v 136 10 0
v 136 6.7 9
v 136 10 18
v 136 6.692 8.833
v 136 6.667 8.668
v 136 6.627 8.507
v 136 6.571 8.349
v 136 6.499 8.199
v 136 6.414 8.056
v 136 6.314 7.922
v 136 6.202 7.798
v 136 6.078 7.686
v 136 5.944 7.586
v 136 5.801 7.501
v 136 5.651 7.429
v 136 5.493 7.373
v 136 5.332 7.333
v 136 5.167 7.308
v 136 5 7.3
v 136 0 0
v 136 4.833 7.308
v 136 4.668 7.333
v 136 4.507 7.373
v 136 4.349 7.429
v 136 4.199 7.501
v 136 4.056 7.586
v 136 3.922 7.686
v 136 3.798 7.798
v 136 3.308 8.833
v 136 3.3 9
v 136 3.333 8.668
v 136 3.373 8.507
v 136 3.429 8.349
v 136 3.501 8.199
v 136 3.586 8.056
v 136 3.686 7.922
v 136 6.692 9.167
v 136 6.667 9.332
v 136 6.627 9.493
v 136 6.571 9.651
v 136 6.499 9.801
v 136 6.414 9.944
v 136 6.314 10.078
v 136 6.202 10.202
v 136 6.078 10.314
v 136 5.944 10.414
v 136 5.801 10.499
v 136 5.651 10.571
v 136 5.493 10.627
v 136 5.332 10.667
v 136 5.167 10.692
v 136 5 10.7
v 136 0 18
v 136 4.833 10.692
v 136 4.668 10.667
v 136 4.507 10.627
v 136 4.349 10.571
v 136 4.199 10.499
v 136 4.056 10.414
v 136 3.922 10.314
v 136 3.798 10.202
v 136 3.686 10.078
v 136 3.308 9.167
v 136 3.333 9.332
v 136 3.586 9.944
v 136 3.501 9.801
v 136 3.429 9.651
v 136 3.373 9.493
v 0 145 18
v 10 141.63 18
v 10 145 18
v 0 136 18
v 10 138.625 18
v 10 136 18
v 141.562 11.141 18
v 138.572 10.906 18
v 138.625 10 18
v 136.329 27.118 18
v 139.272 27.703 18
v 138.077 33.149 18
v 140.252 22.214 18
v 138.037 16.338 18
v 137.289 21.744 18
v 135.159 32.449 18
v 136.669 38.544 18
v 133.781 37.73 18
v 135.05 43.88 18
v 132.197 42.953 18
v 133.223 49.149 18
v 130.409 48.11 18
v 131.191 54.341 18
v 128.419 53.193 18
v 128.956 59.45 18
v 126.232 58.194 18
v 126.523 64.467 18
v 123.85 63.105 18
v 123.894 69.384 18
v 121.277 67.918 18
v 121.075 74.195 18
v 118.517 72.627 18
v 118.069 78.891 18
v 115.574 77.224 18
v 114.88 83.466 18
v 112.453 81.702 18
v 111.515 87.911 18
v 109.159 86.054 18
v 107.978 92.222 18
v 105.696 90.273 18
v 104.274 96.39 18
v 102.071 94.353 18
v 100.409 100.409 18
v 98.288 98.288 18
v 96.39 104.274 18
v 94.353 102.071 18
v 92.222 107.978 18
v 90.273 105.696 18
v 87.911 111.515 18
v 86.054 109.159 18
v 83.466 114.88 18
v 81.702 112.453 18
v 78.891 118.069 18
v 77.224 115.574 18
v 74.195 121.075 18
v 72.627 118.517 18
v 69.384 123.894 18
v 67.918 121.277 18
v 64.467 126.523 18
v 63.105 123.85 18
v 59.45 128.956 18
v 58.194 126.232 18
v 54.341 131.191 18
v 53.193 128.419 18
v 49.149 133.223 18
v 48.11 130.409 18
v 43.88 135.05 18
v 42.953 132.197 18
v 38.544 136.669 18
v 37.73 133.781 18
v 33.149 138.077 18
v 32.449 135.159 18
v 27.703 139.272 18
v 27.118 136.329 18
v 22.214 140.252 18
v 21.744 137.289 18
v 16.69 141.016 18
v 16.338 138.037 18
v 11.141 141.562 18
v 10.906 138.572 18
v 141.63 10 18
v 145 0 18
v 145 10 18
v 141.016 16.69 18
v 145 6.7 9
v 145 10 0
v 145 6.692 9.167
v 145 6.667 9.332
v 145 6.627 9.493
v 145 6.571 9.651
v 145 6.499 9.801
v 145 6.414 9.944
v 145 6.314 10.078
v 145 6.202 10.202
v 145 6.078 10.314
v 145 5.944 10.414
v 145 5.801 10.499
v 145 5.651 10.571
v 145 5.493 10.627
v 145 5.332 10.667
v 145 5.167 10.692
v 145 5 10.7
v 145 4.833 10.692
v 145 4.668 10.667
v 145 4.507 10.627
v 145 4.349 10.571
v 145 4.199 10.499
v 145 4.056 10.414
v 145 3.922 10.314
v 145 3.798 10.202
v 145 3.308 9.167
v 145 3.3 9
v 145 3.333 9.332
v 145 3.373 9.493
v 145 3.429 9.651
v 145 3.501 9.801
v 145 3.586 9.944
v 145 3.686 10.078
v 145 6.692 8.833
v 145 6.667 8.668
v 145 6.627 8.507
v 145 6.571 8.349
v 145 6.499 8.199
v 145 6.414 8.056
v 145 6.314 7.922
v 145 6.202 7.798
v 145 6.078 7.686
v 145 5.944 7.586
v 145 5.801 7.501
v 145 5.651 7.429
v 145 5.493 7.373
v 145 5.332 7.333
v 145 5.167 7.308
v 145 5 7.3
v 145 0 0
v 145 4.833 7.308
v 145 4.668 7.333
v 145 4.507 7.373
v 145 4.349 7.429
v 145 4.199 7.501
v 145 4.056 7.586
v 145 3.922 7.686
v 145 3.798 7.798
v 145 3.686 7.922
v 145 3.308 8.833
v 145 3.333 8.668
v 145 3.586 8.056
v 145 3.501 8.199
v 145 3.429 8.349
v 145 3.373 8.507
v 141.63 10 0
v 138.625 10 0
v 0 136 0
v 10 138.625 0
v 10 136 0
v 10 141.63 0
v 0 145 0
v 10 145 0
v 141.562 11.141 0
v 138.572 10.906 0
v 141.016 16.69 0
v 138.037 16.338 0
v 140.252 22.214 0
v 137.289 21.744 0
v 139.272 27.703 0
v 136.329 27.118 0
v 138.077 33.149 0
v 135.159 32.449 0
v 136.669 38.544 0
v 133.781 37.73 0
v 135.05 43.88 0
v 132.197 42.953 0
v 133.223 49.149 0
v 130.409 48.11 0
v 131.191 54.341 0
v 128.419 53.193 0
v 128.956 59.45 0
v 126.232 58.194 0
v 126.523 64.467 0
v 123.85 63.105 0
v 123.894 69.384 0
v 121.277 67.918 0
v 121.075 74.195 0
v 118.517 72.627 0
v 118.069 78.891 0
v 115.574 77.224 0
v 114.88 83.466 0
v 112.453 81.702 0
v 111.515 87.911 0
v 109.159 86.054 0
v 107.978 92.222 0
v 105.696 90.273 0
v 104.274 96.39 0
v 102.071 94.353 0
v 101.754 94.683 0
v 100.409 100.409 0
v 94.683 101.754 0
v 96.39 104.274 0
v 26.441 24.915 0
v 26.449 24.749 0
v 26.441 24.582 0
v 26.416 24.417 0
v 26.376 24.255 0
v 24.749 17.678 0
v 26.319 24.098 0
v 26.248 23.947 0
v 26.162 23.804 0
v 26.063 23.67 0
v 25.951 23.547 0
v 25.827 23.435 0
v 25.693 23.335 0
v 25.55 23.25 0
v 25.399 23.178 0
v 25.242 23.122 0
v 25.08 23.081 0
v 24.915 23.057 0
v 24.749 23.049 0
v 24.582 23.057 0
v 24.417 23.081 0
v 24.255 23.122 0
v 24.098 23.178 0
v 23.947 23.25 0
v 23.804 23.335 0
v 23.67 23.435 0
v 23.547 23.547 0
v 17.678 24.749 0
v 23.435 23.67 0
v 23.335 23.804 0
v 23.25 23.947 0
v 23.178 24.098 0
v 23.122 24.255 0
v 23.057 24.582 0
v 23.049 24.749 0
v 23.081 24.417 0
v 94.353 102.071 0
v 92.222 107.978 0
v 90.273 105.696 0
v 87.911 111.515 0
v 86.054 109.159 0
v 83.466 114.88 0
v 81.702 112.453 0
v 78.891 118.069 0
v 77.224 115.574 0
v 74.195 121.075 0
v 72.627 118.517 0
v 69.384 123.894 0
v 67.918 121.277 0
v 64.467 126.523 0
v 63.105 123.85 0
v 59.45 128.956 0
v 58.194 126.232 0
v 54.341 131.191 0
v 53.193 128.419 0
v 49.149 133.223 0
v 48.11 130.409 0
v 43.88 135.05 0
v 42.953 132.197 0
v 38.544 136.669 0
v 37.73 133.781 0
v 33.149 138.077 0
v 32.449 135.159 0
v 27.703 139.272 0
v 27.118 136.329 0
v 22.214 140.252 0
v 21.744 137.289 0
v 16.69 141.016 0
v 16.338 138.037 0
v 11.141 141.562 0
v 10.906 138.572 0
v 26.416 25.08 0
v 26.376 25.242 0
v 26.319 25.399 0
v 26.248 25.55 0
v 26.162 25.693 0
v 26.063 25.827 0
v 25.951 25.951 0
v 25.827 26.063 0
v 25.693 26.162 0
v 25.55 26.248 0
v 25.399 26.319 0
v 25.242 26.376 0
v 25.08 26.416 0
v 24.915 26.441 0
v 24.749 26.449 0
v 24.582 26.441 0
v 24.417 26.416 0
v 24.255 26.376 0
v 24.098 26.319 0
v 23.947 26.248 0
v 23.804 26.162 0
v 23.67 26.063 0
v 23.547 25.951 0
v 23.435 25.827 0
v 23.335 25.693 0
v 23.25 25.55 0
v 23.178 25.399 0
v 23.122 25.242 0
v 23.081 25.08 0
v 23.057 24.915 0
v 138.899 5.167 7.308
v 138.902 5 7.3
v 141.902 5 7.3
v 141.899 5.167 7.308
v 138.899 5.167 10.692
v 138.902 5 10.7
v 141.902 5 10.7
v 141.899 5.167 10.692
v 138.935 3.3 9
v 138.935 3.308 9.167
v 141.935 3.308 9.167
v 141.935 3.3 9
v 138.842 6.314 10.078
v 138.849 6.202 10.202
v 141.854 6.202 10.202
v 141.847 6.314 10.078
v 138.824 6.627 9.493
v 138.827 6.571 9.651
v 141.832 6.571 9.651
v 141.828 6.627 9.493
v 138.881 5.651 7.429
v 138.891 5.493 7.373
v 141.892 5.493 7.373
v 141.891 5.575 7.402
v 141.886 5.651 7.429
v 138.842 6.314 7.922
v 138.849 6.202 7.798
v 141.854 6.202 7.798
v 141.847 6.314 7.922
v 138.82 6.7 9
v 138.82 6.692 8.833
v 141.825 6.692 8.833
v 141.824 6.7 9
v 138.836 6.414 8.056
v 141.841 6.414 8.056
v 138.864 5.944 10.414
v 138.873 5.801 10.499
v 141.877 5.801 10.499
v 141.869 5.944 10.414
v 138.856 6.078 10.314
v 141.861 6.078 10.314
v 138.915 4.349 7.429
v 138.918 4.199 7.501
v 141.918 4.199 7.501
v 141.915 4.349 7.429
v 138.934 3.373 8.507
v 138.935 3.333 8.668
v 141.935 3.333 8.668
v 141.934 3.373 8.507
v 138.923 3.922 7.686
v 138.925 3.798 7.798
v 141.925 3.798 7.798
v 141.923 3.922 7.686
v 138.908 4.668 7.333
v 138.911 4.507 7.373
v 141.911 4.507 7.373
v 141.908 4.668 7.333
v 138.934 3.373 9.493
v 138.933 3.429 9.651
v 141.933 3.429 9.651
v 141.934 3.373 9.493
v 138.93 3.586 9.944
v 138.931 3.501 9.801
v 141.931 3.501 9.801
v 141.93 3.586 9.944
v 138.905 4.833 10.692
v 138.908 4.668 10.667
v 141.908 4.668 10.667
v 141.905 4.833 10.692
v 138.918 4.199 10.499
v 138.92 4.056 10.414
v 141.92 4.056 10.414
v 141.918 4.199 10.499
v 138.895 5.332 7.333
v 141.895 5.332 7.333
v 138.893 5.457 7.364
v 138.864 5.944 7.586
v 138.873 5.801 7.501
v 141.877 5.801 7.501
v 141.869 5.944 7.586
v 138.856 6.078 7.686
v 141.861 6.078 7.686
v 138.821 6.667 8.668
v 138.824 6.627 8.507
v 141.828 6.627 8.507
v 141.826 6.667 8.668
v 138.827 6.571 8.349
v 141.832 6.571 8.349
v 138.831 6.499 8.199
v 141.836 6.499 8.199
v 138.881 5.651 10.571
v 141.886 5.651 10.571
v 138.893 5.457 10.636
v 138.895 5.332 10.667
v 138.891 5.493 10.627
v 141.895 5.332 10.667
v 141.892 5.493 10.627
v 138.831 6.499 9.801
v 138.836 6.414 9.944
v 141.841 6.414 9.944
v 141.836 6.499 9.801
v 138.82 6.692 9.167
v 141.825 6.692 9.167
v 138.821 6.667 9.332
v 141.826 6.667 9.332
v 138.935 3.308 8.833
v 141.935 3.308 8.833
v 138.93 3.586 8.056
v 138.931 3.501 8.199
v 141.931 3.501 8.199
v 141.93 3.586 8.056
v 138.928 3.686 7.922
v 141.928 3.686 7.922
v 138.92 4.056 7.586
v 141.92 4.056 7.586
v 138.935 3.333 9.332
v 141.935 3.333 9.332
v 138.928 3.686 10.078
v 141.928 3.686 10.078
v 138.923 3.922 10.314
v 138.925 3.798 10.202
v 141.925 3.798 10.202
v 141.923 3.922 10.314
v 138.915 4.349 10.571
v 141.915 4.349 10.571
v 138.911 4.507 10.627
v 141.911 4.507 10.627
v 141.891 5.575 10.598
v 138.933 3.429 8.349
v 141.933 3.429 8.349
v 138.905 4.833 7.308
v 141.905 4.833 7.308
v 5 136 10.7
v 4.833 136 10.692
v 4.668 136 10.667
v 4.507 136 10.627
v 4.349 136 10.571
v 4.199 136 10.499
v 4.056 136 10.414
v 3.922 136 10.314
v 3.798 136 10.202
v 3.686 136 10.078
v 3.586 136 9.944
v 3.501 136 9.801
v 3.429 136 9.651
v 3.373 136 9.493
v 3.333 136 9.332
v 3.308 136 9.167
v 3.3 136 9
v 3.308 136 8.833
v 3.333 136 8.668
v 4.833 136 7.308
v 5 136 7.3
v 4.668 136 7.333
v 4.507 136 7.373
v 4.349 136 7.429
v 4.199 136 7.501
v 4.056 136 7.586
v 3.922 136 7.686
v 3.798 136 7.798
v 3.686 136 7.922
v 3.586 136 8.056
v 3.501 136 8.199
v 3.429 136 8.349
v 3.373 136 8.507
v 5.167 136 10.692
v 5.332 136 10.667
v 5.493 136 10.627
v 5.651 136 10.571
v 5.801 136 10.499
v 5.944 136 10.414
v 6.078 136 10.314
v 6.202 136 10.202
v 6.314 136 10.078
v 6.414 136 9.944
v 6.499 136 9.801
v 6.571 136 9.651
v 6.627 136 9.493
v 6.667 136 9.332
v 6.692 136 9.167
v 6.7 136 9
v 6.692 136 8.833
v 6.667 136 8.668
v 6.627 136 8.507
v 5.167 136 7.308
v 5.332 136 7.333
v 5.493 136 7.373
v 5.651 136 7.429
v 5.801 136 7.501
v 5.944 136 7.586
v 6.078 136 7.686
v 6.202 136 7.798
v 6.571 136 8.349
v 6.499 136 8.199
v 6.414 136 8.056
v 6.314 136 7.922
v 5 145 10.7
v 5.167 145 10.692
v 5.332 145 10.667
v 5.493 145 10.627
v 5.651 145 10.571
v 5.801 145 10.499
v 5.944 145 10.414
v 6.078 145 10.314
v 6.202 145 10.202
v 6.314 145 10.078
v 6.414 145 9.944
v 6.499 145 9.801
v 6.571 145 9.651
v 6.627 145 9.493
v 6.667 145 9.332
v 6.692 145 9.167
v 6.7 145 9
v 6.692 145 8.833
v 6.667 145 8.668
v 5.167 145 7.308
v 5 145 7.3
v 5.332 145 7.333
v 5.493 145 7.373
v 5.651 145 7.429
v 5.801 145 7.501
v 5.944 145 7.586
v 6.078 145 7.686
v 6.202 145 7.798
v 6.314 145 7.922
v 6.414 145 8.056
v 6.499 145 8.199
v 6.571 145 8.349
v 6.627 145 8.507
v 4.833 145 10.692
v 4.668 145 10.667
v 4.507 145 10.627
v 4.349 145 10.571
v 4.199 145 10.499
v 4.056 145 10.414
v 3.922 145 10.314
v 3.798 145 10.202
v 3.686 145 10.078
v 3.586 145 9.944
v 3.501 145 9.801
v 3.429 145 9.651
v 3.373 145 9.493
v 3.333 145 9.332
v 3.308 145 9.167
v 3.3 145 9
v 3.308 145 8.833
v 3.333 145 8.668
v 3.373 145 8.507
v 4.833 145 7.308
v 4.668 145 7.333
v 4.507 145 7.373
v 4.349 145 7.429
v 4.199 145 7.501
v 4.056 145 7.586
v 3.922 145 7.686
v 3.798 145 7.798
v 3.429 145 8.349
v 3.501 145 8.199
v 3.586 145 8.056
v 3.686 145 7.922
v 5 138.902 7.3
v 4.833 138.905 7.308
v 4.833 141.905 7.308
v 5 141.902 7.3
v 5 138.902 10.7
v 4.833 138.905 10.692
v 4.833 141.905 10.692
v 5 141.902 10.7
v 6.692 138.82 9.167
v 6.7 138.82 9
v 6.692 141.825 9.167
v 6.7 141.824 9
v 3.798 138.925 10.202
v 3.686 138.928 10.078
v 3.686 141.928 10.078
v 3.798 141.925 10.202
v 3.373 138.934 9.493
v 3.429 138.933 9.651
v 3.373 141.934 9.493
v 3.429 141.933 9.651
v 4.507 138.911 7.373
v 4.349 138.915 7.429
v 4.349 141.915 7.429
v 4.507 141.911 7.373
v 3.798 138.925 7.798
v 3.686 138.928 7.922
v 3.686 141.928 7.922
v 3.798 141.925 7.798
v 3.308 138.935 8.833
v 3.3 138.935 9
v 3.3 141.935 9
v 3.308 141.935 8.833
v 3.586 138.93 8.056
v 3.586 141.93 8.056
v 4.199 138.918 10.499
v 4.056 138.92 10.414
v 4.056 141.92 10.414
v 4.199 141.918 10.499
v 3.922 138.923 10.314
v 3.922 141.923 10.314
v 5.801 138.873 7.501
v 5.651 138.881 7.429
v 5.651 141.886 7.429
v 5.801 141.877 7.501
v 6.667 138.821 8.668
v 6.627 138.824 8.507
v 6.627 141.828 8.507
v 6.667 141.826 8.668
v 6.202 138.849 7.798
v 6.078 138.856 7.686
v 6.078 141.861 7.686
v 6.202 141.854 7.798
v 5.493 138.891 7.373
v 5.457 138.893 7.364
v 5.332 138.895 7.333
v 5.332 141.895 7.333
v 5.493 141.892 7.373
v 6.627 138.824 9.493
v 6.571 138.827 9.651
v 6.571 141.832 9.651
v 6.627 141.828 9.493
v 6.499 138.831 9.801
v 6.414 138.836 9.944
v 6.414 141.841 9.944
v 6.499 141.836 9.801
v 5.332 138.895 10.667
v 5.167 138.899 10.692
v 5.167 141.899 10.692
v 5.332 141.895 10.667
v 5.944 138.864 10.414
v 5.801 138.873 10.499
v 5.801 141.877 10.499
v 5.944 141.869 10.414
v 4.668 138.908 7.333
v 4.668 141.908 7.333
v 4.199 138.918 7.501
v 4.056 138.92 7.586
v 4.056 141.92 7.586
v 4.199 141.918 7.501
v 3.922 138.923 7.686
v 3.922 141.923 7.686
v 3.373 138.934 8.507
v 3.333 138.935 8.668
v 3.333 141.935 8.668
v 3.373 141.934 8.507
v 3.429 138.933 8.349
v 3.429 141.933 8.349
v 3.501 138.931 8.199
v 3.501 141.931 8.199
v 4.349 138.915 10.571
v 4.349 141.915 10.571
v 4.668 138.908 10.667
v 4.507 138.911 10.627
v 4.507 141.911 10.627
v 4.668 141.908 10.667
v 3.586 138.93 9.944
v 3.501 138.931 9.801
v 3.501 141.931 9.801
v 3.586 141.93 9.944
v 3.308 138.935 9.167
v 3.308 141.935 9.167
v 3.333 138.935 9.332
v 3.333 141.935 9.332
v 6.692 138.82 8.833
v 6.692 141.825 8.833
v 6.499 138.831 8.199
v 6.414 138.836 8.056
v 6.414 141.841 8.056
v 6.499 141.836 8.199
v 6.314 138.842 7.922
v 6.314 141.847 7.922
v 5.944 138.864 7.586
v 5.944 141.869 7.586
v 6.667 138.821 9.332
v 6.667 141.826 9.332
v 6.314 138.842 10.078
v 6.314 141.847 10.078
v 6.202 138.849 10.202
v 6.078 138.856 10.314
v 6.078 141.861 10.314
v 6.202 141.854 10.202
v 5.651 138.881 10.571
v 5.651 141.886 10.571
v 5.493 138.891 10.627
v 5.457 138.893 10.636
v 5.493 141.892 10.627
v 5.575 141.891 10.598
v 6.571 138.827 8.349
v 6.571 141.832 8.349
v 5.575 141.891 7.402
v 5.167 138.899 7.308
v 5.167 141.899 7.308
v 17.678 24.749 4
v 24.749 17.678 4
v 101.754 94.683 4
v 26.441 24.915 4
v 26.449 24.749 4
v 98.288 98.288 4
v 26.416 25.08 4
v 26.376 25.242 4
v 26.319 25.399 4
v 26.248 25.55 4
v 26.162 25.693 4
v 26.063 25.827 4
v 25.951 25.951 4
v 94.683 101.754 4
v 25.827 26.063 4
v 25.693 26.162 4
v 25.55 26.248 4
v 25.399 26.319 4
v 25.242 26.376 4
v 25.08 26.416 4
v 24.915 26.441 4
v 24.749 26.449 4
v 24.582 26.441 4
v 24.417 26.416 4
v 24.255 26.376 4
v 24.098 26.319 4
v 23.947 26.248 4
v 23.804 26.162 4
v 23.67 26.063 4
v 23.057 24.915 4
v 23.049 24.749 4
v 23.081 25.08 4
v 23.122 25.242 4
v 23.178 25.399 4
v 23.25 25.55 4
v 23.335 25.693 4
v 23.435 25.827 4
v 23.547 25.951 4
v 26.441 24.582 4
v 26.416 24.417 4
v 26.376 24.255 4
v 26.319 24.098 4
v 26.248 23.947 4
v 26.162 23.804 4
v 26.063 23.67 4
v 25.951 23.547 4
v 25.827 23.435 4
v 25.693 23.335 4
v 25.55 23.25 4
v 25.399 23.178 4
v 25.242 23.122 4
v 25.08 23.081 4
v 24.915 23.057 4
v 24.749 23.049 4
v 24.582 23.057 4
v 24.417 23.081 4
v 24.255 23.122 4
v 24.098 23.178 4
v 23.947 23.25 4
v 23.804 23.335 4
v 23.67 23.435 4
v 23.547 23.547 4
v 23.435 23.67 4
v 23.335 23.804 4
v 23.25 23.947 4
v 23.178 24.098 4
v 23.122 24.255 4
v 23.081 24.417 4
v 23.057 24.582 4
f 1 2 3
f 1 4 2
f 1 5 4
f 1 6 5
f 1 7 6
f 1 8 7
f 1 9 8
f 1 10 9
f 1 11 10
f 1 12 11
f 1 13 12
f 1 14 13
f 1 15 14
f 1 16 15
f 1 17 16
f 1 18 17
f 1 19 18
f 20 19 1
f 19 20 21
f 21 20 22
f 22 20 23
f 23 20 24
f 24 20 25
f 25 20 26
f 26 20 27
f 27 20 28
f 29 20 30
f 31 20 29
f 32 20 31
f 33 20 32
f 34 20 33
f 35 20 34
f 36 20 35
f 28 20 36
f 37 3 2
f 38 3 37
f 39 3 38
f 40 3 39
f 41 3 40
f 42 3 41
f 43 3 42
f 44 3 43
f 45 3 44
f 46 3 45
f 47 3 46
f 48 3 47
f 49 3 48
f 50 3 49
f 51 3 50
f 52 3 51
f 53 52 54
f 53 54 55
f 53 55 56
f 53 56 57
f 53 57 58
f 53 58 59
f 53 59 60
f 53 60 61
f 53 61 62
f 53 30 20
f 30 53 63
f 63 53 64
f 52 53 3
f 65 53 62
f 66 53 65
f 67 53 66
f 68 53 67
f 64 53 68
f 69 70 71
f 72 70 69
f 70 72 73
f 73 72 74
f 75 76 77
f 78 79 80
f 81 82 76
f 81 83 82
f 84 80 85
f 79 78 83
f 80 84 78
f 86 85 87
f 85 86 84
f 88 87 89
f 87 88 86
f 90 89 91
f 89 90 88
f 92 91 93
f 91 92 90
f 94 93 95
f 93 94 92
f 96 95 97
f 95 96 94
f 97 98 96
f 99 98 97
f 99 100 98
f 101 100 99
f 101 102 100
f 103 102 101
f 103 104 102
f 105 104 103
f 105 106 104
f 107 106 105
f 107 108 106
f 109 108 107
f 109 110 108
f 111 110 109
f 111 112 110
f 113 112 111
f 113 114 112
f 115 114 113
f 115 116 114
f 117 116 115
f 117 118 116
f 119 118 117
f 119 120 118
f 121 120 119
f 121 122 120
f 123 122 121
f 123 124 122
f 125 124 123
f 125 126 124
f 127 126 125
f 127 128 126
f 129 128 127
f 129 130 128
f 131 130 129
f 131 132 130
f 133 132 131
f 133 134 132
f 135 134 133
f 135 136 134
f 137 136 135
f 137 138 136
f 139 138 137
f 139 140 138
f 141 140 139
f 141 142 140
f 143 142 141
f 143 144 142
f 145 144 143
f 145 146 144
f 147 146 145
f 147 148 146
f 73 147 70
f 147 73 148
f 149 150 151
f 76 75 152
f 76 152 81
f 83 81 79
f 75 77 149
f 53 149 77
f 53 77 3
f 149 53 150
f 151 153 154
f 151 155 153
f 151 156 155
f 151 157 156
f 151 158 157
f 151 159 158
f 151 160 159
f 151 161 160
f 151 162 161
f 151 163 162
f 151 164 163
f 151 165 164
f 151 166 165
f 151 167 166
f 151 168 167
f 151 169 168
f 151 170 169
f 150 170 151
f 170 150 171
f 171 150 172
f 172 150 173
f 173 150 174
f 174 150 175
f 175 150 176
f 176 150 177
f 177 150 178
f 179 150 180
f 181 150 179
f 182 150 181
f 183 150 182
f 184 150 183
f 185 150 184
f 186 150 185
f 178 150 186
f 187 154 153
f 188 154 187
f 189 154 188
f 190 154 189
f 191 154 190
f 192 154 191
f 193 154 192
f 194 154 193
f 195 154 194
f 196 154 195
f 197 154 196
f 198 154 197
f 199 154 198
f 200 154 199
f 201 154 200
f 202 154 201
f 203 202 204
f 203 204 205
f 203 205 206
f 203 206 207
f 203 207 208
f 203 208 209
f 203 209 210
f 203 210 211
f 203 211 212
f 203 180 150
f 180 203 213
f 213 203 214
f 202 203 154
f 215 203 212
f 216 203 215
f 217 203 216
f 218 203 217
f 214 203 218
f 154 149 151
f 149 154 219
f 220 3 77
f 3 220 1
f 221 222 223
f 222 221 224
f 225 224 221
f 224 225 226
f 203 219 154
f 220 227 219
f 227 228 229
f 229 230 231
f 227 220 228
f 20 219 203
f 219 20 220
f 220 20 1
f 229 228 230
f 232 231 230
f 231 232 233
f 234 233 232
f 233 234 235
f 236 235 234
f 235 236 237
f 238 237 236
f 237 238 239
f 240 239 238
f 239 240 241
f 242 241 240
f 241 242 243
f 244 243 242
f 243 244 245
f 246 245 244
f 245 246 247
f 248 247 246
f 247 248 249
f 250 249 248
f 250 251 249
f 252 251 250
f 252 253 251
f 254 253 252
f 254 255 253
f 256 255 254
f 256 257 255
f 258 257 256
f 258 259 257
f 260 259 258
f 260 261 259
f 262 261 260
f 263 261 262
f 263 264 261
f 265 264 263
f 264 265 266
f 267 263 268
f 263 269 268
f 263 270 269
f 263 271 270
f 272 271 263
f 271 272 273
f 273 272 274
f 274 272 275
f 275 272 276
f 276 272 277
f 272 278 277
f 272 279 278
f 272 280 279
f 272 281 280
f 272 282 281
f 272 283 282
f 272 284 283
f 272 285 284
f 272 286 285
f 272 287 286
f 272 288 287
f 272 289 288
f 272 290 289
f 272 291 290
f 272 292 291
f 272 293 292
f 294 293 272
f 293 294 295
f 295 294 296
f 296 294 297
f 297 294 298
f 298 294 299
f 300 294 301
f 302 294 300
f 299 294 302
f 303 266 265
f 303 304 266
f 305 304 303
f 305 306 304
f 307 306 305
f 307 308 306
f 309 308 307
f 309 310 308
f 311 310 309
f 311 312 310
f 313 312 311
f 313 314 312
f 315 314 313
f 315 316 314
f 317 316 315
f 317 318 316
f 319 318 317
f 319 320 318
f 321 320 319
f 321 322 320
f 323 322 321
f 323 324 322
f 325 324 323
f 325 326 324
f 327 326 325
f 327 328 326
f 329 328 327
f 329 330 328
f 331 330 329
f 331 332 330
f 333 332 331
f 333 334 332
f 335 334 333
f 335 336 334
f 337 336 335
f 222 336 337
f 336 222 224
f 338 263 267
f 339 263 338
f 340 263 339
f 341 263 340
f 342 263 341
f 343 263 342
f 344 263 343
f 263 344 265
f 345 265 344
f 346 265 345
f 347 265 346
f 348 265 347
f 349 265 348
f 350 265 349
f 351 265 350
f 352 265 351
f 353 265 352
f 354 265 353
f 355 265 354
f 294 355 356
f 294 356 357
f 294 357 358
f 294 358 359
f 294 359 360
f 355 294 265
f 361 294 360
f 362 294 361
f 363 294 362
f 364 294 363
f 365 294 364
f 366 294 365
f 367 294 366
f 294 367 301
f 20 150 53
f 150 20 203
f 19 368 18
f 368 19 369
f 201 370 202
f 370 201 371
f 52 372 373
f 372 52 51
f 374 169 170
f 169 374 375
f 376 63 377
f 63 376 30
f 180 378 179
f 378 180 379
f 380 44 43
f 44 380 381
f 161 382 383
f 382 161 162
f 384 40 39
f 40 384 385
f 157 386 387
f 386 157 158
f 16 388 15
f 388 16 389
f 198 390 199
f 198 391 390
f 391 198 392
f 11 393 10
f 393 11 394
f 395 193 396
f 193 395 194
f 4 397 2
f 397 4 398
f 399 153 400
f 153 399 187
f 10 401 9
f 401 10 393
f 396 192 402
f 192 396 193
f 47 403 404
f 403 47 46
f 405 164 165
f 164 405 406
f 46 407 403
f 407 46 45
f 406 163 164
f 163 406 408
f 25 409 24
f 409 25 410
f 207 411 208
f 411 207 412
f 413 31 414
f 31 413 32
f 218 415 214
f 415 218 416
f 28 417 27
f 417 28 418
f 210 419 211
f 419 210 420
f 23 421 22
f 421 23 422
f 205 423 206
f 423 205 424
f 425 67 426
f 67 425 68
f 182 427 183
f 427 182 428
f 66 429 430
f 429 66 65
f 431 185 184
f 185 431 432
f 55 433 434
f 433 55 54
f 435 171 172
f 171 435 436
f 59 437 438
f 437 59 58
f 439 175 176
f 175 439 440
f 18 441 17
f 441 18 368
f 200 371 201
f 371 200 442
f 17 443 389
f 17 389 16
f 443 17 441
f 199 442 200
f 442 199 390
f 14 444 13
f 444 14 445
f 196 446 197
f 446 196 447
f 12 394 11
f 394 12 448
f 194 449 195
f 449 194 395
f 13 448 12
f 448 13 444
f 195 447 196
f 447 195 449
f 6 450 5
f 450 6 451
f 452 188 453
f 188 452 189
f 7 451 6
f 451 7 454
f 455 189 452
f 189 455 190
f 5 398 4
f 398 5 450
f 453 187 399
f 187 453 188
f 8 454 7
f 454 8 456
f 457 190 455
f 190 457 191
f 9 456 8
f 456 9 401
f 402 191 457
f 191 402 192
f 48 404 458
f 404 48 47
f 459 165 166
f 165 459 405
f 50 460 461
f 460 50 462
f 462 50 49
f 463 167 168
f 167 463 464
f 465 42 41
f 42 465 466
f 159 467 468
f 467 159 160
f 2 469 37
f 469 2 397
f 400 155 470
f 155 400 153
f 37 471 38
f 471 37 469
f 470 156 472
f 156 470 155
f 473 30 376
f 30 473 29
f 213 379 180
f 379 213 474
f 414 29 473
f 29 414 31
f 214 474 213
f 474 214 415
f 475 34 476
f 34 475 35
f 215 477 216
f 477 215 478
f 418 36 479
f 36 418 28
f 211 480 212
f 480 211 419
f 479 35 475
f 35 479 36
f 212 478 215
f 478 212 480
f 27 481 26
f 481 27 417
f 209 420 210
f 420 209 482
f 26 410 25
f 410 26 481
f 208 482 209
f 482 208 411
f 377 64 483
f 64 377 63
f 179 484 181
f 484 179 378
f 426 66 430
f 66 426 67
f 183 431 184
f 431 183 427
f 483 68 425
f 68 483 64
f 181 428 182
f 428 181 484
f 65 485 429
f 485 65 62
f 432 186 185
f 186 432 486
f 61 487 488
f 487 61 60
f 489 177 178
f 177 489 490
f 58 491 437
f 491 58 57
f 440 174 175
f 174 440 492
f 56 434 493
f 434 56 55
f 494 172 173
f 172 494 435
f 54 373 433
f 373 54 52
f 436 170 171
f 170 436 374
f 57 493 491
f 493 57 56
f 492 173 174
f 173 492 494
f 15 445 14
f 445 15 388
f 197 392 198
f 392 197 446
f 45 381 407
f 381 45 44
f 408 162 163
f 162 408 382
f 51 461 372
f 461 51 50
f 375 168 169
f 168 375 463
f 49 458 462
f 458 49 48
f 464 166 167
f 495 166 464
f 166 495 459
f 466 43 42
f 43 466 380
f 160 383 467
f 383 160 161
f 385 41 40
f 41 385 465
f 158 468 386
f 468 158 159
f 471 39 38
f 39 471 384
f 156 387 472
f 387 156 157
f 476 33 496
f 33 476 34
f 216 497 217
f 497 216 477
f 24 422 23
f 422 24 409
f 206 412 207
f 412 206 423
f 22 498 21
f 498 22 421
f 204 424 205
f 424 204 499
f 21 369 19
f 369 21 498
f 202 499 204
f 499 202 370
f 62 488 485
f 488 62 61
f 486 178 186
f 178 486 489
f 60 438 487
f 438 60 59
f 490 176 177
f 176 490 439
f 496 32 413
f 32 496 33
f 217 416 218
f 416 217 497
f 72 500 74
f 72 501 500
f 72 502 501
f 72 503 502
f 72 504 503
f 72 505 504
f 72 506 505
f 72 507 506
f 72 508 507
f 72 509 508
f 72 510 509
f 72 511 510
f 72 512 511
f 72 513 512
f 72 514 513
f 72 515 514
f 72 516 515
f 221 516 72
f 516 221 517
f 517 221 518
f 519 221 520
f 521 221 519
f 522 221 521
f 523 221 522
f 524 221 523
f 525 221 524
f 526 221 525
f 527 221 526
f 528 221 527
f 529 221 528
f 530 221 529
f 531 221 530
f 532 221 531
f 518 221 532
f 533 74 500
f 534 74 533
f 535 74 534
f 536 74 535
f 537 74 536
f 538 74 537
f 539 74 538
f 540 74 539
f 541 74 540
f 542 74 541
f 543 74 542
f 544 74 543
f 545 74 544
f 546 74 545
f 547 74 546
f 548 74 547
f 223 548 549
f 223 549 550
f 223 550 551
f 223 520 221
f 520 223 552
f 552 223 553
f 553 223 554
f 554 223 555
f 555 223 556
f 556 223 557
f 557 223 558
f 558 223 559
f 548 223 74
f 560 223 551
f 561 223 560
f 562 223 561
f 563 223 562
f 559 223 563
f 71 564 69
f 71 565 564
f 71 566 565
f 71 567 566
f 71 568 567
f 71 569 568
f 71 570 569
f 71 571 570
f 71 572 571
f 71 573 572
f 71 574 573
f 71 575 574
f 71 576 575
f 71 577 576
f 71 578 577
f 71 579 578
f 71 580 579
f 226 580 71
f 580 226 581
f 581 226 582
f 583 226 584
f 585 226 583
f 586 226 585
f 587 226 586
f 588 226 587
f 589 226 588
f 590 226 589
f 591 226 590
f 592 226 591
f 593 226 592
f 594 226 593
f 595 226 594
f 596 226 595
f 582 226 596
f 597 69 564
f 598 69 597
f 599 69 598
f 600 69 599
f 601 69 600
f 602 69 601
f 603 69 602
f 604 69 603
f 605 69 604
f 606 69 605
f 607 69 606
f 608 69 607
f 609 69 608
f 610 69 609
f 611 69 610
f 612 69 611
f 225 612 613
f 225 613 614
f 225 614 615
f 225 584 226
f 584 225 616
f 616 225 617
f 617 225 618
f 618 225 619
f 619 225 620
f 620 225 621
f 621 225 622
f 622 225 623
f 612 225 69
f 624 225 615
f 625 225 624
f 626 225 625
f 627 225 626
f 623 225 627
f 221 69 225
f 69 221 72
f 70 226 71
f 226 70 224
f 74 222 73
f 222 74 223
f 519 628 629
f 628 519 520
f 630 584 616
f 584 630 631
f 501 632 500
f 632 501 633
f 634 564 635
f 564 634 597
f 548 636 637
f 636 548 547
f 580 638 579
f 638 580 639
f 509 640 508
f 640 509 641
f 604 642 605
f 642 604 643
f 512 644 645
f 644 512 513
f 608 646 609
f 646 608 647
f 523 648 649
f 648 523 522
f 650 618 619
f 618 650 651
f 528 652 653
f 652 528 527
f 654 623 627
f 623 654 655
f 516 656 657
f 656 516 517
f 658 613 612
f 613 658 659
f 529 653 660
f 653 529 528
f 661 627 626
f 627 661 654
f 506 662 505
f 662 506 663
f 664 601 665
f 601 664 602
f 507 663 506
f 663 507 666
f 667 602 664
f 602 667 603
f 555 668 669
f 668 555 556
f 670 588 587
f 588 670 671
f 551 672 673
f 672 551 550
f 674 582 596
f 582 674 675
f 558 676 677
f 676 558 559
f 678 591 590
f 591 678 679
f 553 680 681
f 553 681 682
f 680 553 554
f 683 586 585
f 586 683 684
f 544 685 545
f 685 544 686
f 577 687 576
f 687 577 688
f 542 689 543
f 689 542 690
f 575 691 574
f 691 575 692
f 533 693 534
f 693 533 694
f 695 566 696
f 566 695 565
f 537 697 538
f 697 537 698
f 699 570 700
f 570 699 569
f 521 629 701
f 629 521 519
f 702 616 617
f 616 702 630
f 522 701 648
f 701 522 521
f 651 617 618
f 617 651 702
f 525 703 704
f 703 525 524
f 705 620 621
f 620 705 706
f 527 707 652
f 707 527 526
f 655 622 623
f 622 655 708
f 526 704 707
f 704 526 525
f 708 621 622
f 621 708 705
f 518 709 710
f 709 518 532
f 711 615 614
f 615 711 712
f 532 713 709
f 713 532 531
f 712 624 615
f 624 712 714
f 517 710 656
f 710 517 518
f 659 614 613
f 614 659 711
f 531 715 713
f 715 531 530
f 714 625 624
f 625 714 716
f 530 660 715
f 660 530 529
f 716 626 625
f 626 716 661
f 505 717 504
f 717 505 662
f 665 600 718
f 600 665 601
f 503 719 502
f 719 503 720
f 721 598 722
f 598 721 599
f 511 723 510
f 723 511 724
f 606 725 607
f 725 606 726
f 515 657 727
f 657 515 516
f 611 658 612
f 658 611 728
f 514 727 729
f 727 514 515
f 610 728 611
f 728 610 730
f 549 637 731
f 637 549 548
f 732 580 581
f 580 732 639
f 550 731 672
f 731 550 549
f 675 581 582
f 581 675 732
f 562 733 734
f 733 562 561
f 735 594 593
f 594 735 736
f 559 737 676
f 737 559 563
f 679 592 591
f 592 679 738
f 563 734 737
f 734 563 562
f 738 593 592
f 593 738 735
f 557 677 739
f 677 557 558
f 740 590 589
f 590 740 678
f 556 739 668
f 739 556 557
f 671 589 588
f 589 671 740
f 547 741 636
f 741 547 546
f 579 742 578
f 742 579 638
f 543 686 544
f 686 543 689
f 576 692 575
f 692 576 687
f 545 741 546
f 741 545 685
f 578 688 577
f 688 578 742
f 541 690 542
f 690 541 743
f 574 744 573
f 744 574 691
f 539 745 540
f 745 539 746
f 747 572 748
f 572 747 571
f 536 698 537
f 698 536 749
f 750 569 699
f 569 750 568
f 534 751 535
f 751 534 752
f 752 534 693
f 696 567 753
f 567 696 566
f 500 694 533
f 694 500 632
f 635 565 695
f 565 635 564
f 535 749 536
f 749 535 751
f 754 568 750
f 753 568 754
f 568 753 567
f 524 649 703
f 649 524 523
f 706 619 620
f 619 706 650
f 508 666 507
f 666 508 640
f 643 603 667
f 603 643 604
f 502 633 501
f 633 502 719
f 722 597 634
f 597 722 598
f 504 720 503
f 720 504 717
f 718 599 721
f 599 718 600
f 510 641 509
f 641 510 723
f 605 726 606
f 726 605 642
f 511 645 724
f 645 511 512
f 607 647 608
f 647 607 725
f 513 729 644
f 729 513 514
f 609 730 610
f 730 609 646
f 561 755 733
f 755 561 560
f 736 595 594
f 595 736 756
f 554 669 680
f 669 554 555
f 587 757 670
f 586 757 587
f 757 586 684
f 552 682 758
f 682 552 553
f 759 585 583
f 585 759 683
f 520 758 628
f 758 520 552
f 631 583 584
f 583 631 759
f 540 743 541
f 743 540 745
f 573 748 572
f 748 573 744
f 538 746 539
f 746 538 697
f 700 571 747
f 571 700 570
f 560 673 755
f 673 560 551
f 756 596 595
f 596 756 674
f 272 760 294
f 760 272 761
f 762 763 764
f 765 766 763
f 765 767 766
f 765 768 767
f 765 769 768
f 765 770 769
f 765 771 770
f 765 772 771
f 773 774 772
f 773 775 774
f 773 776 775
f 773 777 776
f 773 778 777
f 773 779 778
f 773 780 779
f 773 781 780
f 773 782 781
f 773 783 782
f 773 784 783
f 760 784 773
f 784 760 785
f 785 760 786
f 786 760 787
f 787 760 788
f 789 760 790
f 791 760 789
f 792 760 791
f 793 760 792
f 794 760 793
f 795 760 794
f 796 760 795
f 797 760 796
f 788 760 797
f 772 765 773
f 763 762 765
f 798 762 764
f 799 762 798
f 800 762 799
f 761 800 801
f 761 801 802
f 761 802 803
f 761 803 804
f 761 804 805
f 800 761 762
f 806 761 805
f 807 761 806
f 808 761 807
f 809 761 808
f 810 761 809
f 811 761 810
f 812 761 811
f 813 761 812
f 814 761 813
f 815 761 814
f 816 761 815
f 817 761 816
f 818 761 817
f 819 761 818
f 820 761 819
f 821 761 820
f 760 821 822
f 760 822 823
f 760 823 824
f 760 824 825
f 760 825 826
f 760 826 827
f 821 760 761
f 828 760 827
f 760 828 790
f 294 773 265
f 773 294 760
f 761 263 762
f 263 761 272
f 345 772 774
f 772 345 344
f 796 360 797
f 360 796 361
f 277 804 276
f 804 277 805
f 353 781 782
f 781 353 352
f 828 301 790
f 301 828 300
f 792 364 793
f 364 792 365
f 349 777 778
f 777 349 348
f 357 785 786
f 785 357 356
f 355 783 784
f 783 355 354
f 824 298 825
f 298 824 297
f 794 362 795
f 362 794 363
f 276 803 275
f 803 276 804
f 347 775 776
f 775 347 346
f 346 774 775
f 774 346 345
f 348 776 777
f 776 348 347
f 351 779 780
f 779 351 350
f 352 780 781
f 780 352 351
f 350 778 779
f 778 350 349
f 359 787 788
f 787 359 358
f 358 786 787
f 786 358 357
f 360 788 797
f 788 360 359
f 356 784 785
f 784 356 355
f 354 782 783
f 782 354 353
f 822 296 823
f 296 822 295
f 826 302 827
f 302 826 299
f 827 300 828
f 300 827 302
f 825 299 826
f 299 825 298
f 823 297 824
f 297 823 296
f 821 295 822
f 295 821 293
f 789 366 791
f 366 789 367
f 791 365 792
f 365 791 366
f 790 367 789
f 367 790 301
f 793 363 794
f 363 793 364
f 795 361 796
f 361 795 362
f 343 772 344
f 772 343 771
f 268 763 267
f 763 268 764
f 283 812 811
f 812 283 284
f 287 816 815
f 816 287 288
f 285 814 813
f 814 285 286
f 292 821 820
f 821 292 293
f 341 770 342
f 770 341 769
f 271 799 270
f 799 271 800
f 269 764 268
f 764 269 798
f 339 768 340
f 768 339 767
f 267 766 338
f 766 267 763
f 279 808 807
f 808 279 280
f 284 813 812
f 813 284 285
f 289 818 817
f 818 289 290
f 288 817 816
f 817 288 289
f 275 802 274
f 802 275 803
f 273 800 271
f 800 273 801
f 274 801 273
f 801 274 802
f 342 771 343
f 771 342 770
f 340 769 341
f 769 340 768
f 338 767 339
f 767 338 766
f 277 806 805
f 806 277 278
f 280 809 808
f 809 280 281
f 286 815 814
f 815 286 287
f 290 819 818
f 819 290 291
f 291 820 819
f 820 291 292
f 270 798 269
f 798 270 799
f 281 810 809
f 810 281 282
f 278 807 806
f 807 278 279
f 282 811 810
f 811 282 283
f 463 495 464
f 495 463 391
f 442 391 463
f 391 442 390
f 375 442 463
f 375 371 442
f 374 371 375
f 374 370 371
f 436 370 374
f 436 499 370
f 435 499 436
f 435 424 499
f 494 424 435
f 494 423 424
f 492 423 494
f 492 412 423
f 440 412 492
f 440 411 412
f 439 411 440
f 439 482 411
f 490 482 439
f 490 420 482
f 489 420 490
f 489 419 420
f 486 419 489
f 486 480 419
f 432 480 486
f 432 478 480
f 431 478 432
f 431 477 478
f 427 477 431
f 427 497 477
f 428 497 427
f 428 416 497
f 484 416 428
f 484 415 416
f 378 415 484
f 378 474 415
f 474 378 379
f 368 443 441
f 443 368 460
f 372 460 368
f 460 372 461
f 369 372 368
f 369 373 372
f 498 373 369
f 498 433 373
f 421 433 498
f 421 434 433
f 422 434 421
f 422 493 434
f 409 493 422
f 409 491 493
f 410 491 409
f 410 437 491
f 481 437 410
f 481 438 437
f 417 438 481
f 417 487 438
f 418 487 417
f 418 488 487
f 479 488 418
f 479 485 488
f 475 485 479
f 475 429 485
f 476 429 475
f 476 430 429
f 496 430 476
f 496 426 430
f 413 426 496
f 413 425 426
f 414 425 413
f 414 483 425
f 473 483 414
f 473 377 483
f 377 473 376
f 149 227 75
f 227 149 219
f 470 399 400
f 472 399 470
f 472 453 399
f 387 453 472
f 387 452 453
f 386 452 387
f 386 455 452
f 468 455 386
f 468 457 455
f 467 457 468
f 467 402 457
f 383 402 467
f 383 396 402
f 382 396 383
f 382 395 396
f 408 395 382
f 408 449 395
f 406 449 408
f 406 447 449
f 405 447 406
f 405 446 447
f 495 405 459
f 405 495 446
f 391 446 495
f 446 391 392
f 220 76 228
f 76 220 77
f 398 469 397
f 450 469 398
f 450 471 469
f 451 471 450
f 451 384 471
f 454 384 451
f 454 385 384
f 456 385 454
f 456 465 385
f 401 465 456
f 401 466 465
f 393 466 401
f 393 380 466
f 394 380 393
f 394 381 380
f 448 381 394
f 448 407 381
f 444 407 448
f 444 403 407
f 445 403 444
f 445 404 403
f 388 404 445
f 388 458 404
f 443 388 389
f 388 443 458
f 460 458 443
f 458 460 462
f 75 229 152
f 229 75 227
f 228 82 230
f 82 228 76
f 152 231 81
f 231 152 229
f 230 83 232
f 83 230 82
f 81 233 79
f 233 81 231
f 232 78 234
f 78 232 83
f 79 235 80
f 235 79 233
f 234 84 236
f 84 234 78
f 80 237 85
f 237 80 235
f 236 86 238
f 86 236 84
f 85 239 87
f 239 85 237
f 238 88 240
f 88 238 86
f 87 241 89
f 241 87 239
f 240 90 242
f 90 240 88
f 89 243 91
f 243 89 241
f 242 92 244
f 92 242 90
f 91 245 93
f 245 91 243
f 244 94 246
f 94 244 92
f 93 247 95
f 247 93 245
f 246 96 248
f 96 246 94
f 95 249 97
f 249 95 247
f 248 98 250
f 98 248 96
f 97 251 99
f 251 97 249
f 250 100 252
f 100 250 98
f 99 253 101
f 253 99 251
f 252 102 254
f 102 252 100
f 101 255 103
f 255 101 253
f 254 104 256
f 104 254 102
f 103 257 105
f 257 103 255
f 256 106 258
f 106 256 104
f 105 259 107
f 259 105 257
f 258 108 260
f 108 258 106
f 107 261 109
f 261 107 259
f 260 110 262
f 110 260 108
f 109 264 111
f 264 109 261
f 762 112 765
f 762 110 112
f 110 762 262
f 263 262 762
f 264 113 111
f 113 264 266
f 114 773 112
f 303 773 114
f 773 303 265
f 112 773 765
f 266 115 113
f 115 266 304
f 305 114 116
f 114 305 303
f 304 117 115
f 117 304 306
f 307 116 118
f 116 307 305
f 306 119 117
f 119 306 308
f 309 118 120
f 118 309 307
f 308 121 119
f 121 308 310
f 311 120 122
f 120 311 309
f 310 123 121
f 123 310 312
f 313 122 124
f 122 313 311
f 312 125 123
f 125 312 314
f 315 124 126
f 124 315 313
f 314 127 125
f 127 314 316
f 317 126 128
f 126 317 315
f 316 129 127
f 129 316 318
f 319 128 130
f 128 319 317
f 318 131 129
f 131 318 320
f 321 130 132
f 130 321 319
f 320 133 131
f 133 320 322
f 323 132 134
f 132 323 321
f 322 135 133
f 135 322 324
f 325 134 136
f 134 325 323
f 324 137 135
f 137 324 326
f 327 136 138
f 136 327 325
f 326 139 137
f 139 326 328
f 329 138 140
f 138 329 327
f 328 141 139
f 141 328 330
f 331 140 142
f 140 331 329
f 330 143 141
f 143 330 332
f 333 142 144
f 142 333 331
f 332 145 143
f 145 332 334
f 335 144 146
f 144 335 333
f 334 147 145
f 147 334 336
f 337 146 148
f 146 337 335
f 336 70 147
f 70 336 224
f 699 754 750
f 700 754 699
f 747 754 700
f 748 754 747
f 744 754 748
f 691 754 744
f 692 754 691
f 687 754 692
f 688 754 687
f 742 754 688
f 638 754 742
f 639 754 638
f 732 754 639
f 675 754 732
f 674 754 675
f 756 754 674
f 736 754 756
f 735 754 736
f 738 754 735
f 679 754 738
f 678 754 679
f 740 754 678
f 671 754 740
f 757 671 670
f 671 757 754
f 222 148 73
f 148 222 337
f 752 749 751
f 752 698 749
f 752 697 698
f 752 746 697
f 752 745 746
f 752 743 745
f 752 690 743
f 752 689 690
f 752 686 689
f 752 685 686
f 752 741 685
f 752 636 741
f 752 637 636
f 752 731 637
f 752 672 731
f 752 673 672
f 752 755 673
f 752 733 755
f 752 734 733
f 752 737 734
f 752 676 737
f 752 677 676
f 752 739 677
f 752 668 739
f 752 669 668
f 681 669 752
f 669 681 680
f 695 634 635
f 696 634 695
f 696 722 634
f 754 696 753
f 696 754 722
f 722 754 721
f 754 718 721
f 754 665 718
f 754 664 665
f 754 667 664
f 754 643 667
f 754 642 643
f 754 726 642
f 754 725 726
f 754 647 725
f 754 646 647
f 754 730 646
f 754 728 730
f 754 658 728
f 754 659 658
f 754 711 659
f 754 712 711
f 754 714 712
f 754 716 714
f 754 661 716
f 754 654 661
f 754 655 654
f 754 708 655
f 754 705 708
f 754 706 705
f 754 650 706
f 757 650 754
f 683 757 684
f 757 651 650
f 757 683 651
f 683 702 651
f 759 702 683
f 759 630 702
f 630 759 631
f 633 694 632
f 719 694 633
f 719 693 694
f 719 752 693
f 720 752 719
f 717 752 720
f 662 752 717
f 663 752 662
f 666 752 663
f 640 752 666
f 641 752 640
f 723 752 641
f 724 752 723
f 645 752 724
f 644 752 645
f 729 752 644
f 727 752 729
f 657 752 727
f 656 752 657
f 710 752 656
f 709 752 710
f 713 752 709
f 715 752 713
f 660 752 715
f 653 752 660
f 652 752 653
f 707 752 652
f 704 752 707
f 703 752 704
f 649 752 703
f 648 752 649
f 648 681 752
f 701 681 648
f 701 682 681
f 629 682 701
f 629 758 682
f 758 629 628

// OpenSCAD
// file: common.scad
// common.scad -- shared dimensions for the seesaw-rig parts (millimetres).
// Drone-control bootcamp, CC BY 4.0. Measure your own parts and adjust.

beam_w      = 20.0;   // square aluminium tube (or pine strip), outer size
fit         = 0.4;    // printing clearance for sliding fits
bearing_od  = 22.0;   // 608 bearing
bearing_w   = 7.0;
axle_d      = 8.0;    // M8 threaded rod or 8 mm steel rod
pot_shaft_d = 6.0;    // common B10K pot (WH148): 6 mm shaft
pot_bush_d  = 7.0;    // threaded bushing (M7)
m3          = 3.4;    // M3 clearance hole
m3_nut      = 6.4;    // M3 nut across flats (+ clearance)
wall        = 3.0;

$fn = 64;

// rounded rectangle plate, centred in x/y, sitting on z = 0
module plate(x, y, h, r = 3) {
  hull()
    for (sx = [-1, 1], sy = [-1, 1])
      translate([sx * (x / 2 - r), sy * (y / 2 - r), 0]) cylinder(r = r, h = h);
}
// main file
// prop_guard_segment.scad -- one quarter of a ring guard around a 10-inch propeller.
// Print four per motor (eight per rig) and bolt them together at the tabs; two spokes
// (spoke = true) bolt to the motor mount. A guard does not make a spinning prop safe:
// the mesh cage, the e-stop and the rules in safety.md do. It stops casual contact and
// keeps a loose prop blade from flying out sideways.
include <common.scad>

prop_d    = 254;      // 10 inch
clearance = 12;       // radial gap between prop tips and the ring
ring_h    = 18;       // ring height
ring_t    = 3;        // ring thickness
spoke     = true;     // add a spoke to the motor mount on this segment

r_in = prop_d / 2 + clearance;

module tab() {
  difference() {
    cube([ring_t * 3, 10, ring_h], center = true);
    rotate([0, 90, 0]) cylinder(d = m3, h = 20, center = true);
  }
}

union() {
  // quarter ring
  rotate_extrude(angle = 90, $fn = 160)
    translate([r_in, 0]) square([ring_t, ring_h]);
  // joining tabs at both ends
  translate([r_in + ring_t / 2, 5, ring_h / 2]) tab();
  rotate([0, 0, 90]) translate([r_in + ring_t / 2, -5, ring_h / 2]) tab();
  // spoke from the ring to the motor mount (bolts to the mount's corner)
  if (spoke)
    rotate([0, 0, 45]) translate([30, -5, 0])
      difference() {
        cube([r_in - 30 + 1, 10, 4]);
        translate([5, 5, -1]) cylinder(d = m3, h = 6);
      }
}
